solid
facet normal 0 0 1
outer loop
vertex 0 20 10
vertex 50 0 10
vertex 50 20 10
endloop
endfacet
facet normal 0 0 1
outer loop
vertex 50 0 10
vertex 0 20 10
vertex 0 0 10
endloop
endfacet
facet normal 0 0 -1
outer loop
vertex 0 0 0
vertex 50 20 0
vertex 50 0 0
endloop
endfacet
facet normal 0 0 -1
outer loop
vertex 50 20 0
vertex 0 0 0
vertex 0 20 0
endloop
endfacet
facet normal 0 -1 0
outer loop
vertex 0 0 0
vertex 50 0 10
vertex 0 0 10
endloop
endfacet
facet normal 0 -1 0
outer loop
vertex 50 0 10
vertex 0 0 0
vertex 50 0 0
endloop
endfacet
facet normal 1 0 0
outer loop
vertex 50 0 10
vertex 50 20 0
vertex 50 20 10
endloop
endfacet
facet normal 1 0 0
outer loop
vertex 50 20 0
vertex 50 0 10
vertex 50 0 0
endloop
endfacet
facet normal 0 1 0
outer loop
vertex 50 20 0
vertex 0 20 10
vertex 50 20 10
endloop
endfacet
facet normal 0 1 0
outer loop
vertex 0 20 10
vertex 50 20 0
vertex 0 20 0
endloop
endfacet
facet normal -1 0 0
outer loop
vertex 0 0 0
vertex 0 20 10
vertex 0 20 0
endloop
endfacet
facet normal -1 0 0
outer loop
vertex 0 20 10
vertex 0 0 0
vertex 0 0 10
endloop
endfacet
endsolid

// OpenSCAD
// Define dimensions for the rectangular block
block_length = 50;  // Length of the block
block_width = 20;   // Width of the block
block_height = 10;  // Height of the block

// Adjust the orientation of the rectangular block
rotate([0, 0, 0])  // Remove rotation to align the block upright and parallel to the ground
cube([block_length, block_width, block_height]);
